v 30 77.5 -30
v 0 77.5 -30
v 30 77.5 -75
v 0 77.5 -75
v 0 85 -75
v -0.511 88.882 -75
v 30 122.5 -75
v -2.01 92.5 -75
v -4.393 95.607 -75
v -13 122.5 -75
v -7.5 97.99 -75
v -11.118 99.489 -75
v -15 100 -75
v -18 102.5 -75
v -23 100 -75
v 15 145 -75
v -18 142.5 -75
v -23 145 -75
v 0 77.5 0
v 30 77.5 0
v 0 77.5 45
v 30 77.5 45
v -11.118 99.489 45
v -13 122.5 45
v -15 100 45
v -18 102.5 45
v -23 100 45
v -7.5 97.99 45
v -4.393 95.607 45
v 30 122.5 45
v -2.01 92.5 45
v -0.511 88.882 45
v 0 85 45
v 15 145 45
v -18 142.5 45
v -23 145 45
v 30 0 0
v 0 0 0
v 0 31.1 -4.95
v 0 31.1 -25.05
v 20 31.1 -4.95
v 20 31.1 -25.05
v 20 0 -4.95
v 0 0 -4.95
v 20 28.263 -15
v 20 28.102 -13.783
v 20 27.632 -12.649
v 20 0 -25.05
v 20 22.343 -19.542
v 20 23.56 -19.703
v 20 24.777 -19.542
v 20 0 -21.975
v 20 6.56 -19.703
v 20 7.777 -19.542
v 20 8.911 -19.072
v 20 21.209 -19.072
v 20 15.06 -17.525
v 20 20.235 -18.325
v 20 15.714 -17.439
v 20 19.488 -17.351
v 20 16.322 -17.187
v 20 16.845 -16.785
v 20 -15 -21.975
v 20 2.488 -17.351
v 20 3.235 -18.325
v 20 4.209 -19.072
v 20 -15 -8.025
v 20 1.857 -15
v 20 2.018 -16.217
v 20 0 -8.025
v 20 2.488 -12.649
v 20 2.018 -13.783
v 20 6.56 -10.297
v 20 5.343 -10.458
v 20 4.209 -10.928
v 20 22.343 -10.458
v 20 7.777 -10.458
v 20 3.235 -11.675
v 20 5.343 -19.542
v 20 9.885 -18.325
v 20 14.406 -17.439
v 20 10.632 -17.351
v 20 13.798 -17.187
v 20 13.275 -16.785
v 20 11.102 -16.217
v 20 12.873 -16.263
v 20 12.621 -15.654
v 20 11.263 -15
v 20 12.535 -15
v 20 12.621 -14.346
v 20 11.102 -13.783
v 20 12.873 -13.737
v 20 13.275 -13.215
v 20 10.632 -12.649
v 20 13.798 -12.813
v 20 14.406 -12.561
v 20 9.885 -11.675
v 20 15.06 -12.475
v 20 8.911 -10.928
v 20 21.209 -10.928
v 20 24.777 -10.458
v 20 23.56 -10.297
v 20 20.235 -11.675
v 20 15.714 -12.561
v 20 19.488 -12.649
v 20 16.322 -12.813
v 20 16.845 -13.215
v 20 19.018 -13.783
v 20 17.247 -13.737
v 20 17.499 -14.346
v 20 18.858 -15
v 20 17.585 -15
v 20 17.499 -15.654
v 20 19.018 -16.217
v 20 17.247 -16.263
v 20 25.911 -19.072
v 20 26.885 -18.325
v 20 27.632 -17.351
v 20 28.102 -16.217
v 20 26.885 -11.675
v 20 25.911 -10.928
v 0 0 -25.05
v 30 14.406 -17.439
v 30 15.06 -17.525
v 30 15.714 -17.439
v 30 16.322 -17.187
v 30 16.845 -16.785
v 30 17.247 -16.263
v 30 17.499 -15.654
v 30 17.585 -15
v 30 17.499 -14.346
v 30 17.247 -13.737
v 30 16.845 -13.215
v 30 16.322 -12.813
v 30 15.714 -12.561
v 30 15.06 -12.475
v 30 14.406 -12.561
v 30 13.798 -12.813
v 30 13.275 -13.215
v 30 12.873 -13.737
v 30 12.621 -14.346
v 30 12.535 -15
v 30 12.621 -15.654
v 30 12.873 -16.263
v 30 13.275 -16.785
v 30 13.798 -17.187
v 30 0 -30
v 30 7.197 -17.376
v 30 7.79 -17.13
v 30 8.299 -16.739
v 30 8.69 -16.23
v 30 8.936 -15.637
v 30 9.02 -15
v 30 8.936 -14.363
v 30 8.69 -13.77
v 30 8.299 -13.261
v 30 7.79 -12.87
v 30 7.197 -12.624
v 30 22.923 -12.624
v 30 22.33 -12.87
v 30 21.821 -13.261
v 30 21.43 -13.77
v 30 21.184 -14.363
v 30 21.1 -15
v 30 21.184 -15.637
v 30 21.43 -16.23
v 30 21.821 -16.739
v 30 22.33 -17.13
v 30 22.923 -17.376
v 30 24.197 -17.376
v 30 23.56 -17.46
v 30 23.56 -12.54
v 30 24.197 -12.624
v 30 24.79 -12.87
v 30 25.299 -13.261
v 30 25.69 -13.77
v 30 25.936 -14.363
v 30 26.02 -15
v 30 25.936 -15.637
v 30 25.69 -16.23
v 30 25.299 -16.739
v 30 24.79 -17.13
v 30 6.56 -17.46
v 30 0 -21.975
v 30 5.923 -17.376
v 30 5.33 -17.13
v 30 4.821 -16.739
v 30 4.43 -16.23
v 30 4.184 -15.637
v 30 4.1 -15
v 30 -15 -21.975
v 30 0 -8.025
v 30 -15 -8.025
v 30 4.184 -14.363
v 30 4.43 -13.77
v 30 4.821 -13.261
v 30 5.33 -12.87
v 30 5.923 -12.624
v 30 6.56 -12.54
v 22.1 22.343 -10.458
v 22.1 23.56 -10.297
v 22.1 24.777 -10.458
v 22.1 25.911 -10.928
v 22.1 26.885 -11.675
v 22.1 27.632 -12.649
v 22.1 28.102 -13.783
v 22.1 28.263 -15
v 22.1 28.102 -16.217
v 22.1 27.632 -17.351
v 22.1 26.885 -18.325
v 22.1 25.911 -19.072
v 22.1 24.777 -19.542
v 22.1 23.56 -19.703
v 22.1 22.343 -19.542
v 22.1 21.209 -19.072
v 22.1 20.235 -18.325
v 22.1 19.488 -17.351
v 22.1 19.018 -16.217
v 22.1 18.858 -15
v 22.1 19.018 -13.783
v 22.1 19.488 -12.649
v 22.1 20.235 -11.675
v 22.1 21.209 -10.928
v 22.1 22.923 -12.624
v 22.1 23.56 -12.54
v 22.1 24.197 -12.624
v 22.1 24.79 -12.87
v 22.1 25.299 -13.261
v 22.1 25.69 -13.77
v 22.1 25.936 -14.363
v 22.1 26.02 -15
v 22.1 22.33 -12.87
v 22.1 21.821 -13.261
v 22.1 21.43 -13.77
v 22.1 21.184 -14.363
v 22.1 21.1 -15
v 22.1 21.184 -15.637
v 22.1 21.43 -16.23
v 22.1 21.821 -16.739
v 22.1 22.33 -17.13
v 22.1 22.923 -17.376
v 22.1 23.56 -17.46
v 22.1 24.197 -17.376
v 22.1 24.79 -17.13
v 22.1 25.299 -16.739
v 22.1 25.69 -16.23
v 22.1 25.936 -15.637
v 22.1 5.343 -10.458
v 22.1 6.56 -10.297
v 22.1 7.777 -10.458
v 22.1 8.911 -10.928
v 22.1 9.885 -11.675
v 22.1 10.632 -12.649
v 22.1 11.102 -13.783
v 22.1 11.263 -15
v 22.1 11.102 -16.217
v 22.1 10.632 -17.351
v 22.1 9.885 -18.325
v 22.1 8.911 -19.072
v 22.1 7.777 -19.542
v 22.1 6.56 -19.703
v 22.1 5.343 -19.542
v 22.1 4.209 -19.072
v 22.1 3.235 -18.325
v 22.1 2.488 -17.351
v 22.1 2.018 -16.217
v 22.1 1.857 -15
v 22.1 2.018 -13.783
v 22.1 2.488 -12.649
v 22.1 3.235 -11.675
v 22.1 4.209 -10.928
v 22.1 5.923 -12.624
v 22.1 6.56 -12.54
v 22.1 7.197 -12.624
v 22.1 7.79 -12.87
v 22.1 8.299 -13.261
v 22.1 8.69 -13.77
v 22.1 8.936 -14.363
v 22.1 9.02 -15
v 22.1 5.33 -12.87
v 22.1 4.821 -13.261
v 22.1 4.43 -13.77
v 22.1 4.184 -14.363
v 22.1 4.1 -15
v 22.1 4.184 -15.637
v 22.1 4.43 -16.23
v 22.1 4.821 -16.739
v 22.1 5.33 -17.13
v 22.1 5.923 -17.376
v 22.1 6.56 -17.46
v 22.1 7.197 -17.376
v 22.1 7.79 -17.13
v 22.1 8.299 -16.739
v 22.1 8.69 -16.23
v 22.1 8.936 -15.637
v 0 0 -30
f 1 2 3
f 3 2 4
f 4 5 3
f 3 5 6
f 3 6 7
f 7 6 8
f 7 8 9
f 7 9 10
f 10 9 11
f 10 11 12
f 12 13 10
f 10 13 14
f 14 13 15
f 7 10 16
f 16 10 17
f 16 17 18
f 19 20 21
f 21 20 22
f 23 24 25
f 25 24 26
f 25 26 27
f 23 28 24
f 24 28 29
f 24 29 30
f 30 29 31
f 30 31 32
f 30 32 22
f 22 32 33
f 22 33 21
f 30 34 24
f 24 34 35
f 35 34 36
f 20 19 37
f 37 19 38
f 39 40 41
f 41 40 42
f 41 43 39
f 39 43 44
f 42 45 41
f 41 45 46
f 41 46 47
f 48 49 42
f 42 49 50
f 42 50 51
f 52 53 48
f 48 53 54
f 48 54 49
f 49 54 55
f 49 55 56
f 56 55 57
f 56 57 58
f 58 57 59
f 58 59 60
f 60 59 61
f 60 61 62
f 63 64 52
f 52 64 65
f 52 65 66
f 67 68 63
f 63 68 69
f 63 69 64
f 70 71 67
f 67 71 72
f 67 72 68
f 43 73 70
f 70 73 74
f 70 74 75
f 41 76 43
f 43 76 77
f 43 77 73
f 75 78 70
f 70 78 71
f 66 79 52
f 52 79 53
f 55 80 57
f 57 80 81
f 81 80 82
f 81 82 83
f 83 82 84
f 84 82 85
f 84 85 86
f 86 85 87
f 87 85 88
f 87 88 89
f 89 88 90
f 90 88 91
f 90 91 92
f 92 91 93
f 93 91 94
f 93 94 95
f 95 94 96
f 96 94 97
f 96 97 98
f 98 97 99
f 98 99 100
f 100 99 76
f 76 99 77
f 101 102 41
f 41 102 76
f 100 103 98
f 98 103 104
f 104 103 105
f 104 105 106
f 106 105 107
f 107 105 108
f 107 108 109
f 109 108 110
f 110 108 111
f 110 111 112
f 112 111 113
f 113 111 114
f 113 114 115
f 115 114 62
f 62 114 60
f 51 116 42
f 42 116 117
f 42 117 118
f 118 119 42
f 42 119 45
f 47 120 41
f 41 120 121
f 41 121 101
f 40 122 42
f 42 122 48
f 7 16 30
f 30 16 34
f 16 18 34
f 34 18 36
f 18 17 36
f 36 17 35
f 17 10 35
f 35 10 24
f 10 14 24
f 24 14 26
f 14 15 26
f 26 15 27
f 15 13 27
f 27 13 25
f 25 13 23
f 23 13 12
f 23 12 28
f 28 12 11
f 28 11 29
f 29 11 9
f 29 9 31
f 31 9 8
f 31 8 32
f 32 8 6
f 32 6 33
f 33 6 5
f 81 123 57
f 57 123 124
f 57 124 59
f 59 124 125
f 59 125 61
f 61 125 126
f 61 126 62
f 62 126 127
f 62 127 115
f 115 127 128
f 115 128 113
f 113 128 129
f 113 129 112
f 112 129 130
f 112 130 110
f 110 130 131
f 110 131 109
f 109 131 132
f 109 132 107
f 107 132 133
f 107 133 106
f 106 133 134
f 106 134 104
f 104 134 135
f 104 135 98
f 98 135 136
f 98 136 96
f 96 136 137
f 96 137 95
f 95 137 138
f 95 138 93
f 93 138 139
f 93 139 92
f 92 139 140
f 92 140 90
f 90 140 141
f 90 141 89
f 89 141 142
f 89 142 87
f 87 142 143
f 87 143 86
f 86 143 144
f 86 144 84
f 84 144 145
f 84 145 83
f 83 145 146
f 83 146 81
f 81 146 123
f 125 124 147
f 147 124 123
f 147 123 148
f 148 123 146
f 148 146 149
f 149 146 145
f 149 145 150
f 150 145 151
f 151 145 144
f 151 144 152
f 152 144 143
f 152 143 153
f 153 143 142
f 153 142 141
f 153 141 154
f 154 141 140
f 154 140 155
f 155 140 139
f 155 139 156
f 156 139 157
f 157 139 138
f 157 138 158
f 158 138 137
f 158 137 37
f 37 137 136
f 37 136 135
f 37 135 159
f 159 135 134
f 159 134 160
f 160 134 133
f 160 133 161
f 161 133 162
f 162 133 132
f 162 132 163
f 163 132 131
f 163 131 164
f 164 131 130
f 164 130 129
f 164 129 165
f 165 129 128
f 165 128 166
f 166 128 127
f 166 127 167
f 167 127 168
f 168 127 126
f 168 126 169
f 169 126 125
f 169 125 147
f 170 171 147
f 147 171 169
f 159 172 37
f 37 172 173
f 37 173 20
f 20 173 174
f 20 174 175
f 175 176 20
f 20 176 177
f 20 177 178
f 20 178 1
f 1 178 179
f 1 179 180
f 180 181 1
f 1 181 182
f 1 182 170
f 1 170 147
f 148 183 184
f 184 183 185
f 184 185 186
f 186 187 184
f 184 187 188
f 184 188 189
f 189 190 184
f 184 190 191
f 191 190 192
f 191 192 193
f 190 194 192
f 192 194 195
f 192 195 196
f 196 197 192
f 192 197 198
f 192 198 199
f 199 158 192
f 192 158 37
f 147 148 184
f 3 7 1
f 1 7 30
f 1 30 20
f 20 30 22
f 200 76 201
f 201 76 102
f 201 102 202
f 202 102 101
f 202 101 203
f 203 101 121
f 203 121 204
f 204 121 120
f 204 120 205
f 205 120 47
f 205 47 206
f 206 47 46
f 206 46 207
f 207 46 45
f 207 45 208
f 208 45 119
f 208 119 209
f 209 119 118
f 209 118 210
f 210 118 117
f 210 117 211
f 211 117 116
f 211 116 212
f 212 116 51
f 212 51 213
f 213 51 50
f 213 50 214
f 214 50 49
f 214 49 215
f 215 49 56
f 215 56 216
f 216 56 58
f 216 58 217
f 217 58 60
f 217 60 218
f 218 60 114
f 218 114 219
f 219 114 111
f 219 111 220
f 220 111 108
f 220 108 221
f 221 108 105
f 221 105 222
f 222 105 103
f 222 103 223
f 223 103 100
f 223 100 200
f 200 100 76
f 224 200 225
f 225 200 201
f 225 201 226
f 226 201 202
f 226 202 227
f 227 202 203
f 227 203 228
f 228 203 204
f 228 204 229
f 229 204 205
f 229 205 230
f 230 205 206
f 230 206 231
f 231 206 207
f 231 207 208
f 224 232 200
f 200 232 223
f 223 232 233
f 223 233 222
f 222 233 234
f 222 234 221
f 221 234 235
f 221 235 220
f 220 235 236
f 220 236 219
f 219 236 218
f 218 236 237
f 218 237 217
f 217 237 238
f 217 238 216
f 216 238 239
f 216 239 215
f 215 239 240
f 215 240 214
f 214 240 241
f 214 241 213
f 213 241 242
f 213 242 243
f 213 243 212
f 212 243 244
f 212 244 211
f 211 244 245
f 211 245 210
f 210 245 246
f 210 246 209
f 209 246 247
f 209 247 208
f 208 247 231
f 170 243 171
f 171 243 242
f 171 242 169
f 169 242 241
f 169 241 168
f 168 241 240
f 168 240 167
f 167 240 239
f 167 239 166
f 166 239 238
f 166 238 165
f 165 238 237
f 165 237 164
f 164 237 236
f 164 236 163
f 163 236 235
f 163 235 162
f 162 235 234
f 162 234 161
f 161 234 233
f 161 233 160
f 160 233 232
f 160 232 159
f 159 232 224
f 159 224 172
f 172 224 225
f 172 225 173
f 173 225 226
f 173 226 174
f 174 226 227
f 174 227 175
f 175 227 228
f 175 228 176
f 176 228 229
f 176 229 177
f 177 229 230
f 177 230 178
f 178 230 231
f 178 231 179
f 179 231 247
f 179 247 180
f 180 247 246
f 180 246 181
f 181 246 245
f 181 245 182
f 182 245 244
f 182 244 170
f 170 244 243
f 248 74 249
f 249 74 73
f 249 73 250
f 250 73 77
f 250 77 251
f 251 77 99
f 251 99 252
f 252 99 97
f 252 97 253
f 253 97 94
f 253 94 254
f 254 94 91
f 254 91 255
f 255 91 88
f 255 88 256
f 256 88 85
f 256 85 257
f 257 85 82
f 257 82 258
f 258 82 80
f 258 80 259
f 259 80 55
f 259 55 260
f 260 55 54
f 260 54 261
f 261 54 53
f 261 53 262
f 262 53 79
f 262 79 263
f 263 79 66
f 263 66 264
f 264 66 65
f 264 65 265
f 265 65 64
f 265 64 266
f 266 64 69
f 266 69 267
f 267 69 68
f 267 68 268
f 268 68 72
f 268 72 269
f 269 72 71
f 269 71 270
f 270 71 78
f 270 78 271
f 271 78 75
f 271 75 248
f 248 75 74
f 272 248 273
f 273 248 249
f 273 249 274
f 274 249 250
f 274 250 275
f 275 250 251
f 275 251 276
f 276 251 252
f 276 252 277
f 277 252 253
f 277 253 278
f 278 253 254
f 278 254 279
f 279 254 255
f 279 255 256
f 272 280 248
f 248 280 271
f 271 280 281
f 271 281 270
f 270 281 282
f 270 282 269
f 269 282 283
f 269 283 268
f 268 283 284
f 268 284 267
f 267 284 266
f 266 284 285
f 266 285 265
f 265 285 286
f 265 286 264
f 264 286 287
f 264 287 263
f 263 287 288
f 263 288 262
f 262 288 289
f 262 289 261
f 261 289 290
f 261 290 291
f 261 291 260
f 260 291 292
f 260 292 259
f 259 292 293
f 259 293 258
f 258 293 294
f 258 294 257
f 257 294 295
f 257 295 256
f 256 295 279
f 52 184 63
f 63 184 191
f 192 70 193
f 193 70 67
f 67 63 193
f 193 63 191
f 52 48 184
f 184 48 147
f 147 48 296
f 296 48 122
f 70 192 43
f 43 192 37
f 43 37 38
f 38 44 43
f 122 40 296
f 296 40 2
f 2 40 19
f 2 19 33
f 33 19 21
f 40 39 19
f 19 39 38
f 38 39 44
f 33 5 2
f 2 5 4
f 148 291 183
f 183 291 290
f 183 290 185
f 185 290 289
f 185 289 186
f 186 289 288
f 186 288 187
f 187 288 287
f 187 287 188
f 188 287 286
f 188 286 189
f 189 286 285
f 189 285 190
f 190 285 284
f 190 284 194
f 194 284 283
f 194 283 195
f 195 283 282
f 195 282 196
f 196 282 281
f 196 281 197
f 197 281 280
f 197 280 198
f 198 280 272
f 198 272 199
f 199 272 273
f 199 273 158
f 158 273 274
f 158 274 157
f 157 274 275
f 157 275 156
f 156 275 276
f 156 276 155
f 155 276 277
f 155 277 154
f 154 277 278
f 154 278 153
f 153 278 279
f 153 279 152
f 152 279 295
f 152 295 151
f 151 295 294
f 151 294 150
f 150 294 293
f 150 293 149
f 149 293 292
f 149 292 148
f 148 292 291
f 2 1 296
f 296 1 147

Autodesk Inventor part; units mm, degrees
ref_plane "YZ Plane" through (0, 0, 0) normal (1, 0, 0) x (0, 1, 0)
ref_plane "XZ Plane" through (0, 0, 0) normal (0, 1, 0) x (-1, 0, 0)
sketch "Sketch1" plane through (0, 0, 0) normal (0, 0, 1) x (1, 0, 0)
  line L0 (0, 0) -> (25, 0)
  line L1 (25, 0) -> (25, 40)
  line L2 (25, 40) -> (0, 40)
  line L3 (0, 40) -> (0, 0)
  dimension "d1" = 25
  dimension "d2" = 40
  dimension "d3" = 25
extrude "Extrusion1" add sketch "Sketch1" against normal blind 30
sketch "Sketch2" plane through (25, 0, 0) normal (1, 0, 0) x (0, 0, -1)
  line L0 (0, 0) -> (30, 0) projected
  circle A0 centre (15, 6.56) radius 2.46
extrude "Extrusion2" cut sketch "Sketch2" against normal blind 30
sketch "Sketch3" plane through (0, 0, 0) normal (-1, 0, 0) x (0, 0, 1)
  line L0 (0, 0) -> (-30, 0) projected
  line L1 (-25.05, 0) -> (-4.95, 0)
  line L2 (-4.95, 0) -> (-4.95, 33.12)
  line L3 (-4.95, 33.12) -> (-25.05, 33.12)
  line L4 (-25.05, 33.12) -> (-25.05, 0)
  dimension "d11" = 20.1
extrude "Extrusion3" cut sketch "Sketch3" against normal blind 20
sketch "Sketch4" plane through (0, 0, 0) normal (0, -1, 0) x (1, 0, 0)
  line L0 (20, -4.95) -> (20, -25.05) projected
  line L1 (20, -15) -> (25, -15)
  line L2 (25, 0) -> (25, -30) projected
  line L3 (20, -8.025) -> (25, -8.025)
  line L4 (25, -8.025) -> (25, -21.975)
  line L5 (25, -21.975) -> (20, -21.975)
  line L6 (20, -21.975) -> (20, -8.025)
  line L7 (20, -8.025) -> (25, -21.975) construction
  line L8 (25, -8.025) -> (20, -21.975) construction
  line L9 (25, -12.54) -> (25, -17.46) projected
  point P0 (0, 0)
  point P1 (22.5, -15)
  dimension "d14" = 13.95
extrude "Extrusion4" add sketch "Sketch4" along normal blind 15
sketch "Sketch5" plane through (20, 0, 0) normal (-1, 0, 0) x (0, 0, 1)
  circle A0 centre (-15, 6.56) radius 2.46 projected
  circle A1 centre (-15, 6.56) radius 4.7025
  circle A2 centre (-15, 6.56) radius 2.46 projected
  circle A3 centre (-15, 6.56) radius 2.46
  point P0 (0, 0)
  dimension "d17" = 9.405
extrude "Extrusion5" cut sketch "Sketch5" against normal blind 2.1
sketch "Sketch6" plane through (25, 0, 0) normal (1, 0, 0) x (0, 0, -1)
  circle A0 centre (15, 6.56) radius 4.7025 projected
  line L0 (15, 6.56) -> (15, 23.56)
  circle A1 centre (15, 23.56) radius 2.46
  point P0 (0, 0)
  dimension "d20" = 17
  dimension "d21" = 4.92
extrude "Extrusion6" cut sketch "Sketch6" against normal blind 10 contours A1
sketch "Sketch7" plane through (20, 0, 0) normal (-1, 0, 0) x (0, 0, 1)
  circle A0 centre (-15, 23.56) radius 2.46 projected
  circle A1 centre (-15, 23.56) radius 4.7025
  point P0 (0, 0)
  dimension "d24" = 9.405
extrude "Extrusion7" cut sketch "Sketch7" against normal blind 2.1
sketch "Sketch9" plane through (25, 0, 0) normal (1, 0, 0) x (0, 0, -1)
  circle A0 centre (15, 6.56) radius 2.46 projected
  circle A1 centre (15, 6.56) radius 2.46
  circle A2 centre (15, 23.56) radius 2.46 projected
  circle A3 centre (15, 23.56) radius 2.46
  line L0 (30, 40) -> (30, 0) projected
  line L1 (30, 0) -> (30, 40)
  line L2 (30, 40) -> (0, 40)
  line L3 (0, 40) -> (0, 0)
  line L4 (0, 0) -> (8.025, 0) projected
  line L5 (21.975, 0) -> (21.975, -15)
  line L6 (21.975, -15) -> (8.025, -15)
  line L7 (8.025, -15) -> (8.025, 0)
  line L8 (0, 0) -> (8.025, 0)
  line L9 (21.975, 0) -> (30, 0)
extrude "Extrusion8" add sketch "Sketch9" along normal blind 5
sketch "Sketch10" plane through (0, 40, 0) normal (0, 1, 0) x (1, 0, 0)
  line L0 (0, 30) -> (30, 30) projected
  line L1 (30, 0) -> (0, 0) projected
  line L2 (0, 30) -> (30, 30)
  line L3 (30, 30) -> (30, 0)
  line L4 (30, 0) -> (0, 0)
  line L5 (0, 0) -> (0, 30)
extrude "Extrusion9" add sketch "Sketch10" along normal blind 30
sketch "Sketch12" plane through (30, 0, 0) normal (1, 0, 0) x (0, 0, -1)
  circle A0 centre (15, 6.56) radius 2.46 projected
  line L0 (15, 6.56) -> (15, 15.06)
  circle A1 centre (15, 15.06) radius 2.525
  point P0 (0, 0)
  dimension "d31" = 8.5
  dimension "d33" = 5.05
extrude "Extrusion10" cut sketch "Sketch12" against normal blind 30 contours A1
sketch "Sketch14" plane through (0, 0, 0) normal (0, 0, 1) x (1, 0, 0)
  line L0 (30, 70) -> (0, 70) projected
  line L1 (0, 70) -> (0, 85)
  line L2 (-15, 100) -> (-23, 100)
  line L3 (30, 0) -> (30, 70) projected
  line L4 (30, 122.5) -> (30, 70)
  arc A0 (0, 85) -> (-15, 100) centre (-15, 85) ccw
  line L5 (30, 105) -> (30, 100)
  line L6 (-23, 145) -> (15, 145)
  line L7 (-18, 142.5) -> (-23, 145)
  line L8 (-18, 102.5) -> (-23, 100)
  line L9 (-18, 102.5) -> (-13, 122.5)
  line L10 (-13, 122.5) -> (-18, 142.5)
  line L11 (30, 122.5) -> (15, 145)
  point P0 (0, 0)
  point P1 (0, 100)
  dimension "d47" = 30
  dimension "d54" = 15
extrude "Extrusion12" add sketch "Sketch14" against normal blind 30
sketch "Sketch15" plane through (0, 0, -25.05) normal (-1, 0, 0) x (0, 0, 1)
  line L0 (0, 33.12) -> (20.1, 33.12) projected
  line L1 (20.1, 33.12) -> (20.1, 0) projected
  line L2 (0, 33.12) -> (20.1, 33.12)
  line L3 (20.1, 33.12) -> (20.1, 31.1)
  line L4 (20.1, 31.1) -> (0, 31.1)
  line L5 (0, 31.1) -> (0, 33.12)
  point P0 (25.05, 0)
  dimension "d57" = 2.02
extrude "Extrusion13" add sketch "Sketch15" against normal blind 20
sketch "Sketch24" plane through (0, 0, 0) normal (0, 0, 1) x (1, 0, 0)
  line L0 (-15, 100) -> (-23, 100) projected
  line L1 (-15, 100) -> (-23, 100)
  line L2 (-23, 100) -> (-18, 102.5) projected
  line L3 (-23, 100) -> (-18, 102.5)
  line L4 (-18, 102.5) -> (-13, 122.5) projected
  line L5 (-18, 102.5) -> (-13, 122.5)
  line L6 (-13, 122.5) -> (-18, 142.5) projected
  line L7 (-13, 122.5) -> (-18, 142.5)
  line L8 (-18, 142.5) -> (-23, 145) projected
  line L9 (-18, 142.5) -> (-23, 145)
  line L10 (-23, 145) -> (15, 145) projected
  line L11 (-23, 145) -> (15, 145)
  line L12 (15, 145) -> (30, 122.5) projected
  line L13 (15, 145) -> (30, 122.5)
  line L14 (30, 122.5) -> (30, 77.5)
  line L15 (30, 0) -> (30, 122.5) projected
  line L16 (30, 77.5) -> (0, 77.5)
  line L17 (0, 0) -> (0, 85) projected
  line L18 (0, 77.5) -> (0, 85)
  arc A0 (0, 85) -> (-15, 100) centre (-15, 85) ccw projected
  arc A1 (0, 85) -> (-15, 100) centre (-15, 85) ccw
  dimension "d86" = 45
extrude "Extrusion14" add sketch "Sketch24" along normal blind 45
ref_plane "Work Plane1" through (0, 0, -15) normal (0, 0, 1) x (1, 0, 0)
mirror "Mirror1" about plane through (0, 0, -15) normal (0, 0, 1) of "Extrusion14"
properties part number "rec_a_40mm_x_120mm"
